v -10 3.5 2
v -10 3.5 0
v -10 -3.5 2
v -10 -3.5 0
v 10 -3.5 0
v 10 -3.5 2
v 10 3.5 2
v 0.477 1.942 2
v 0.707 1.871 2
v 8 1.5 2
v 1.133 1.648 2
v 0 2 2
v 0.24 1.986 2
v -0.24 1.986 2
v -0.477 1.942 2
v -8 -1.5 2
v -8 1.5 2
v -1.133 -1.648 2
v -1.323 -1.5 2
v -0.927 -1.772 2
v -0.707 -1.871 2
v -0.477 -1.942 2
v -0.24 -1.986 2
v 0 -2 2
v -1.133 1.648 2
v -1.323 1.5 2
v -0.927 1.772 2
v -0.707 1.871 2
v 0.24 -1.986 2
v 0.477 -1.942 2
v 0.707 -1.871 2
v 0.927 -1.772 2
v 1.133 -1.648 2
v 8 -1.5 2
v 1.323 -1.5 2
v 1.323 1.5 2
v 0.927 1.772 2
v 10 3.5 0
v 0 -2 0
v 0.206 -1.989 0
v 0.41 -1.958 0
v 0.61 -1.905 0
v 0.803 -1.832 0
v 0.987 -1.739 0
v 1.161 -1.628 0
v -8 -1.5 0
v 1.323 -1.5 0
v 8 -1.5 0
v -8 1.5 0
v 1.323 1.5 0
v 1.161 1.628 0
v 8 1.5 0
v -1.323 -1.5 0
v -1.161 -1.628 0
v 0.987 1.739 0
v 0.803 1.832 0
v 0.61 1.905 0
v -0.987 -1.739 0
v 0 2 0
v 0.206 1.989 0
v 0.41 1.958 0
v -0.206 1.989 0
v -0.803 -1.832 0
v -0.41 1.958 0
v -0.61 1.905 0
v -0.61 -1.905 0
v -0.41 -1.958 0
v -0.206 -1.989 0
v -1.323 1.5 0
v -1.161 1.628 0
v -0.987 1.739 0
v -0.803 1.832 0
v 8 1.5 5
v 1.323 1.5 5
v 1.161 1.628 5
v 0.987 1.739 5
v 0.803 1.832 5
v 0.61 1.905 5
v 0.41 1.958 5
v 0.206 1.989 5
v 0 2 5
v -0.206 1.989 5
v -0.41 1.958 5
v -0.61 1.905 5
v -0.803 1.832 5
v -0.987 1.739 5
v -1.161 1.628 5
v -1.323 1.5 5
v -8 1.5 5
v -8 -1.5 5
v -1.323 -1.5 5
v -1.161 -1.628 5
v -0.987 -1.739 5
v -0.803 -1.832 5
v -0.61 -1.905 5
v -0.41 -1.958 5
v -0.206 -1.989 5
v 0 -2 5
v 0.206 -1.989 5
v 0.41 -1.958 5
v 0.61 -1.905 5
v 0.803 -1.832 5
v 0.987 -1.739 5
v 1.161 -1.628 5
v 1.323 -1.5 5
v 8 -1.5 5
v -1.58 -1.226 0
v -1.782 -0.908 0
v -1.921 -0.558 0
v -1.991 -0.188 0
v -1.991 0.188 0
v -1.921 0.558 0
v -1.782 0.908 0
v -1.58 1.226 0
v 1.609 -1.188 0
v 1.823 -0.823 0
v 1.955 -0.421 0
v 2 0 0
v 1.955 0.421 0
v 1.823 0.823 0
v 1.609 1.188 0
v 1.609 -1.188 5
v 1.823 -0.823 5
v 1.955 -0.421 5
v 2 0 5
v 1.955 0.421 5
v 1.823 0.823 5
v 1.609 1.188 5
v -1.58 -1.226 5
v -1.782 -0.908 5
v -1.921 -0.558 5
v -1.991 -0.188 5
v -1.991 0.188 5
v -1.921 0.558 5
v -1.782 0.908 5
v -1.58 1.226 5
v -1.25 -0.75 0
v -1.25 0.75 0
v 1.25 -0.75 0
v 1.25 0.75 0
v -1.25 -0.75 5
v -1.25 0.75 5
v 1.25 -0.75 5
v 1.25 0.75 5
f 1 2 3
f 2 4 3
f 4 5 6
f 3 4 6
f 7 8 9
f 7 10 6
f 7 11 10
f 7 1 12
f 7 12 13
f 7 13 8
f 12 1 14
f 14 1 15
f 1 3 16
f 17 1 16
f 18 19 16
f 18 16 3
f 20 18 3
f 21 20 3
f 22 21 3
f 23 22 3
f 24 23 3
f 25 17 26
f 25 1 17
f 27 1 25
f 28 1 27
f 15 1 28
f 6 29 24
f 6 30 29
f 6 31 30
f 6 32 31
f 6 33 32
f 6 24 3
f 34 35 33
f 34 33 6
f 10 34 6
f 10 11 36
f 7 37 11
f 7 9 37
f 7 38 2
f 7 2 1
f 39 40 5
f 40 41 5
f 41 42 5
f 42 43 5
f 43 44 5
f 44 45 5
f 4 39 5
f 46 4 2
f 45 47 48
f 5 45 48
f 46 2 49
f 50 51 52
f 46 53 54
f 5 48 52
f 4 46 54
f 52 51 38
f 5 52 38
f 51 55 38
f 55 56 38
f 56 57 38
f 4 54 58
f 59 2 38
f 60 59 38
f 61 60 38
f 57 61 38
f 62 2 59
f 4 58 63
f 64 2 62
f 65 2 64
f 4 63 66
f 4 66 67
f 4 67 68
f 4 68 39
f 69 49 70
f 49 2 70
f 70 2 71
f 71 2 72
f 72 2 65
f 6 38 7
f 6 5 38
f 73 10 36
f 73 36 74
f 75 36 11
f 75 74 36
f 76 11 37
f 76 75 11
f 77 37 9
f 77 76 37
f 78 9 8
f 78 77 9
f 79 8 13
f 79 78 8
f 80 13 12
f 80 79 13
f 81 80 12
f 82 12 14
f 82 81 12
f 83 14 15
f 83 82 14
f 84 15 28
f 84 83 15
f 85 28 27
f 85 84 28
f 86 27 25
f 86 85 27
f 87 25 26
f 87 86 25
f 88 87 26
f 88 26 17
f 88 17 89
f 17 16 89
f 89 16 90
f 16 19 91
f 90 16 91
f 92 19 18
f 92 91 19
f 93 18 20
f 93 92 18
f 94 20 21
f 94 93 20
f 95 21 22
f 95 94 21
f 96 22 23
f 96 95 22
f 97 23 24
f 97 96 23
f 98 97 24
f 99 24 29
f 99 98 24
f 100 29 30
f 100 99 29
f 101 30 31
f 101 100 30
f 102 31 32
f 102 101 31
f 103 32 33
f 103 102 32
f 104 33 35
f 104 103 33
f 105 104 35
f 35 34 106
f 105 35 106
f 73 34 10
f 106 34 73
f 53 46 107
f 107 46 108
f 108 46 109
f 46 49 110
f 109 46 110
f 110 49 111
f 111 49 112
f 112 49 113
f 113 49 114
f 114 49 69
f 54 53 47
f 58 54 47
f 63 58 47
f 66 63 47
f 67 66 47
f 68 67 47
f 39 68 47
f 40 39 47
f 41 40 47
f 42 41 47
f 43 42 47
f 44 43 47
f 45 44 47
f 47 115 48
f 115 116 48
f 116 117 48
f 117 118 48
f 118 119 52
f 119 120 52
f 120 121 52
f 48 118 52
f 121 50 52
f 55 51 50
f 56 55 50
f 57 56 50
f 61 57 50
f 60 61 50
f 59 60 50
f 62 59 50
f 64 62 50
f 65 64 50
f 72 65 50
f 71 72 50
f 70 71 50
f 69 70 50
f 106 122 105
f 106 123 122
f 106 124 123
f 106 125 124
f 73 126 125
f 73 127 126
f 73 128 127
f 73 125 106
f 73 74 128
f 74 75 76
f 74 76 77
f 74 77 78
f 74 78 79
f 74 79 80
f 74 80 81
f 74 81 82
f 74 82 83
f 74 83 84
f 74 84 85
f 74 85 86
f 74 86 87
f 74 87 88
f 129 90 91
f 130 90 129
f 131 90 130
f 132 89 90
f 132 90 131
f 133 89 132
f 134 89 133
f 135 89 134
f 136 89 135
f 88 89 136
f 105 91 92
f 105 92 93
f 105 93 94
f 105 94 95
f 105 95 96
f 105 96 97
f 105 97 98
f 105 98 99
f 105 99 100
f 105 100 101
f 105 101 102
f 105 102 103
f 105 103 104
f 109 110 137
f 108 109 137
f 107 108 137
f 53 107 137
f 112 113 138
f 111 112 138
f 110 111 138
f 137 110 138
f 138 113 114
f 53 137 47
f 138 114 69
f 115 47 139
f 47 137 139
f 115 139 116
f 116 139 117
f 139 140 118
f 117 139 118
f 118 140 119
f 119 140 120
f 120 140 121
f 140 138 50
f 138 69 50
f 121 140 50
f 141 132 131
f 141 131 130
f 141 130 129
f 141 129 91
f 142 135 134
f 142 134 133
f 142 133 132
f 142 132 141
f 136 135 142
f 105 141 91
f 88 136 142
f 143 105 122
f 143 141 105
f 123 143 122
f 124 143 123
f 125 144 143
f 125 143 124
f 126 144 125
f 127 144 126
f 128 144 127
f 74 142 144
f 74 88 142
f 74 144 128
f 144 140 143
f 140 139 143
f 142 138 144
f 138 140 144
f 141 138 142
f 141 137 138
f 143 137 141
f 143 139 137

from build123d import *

# Parameters (mm, degrees)
BOX001_W       = 2.5
BOX001_H       = 1.5
BOX001_DEPTH   = 10
BOX_W          = 16
BOX_H          = 3
BOX_DEPTH      = 5
CYLINDER_R     = 2
CYLINDER_DEPTH = 5
BOX002_W       = 20
BOX002_H       = 7
BOX002_DEPTH   = 2


with BuildPart() as cube001:
    # Box001 → Box001 (new body)
    with BuildSketch(Plane(origin=(-1.25, -0.75, 0), x_dir=(1, 0, 0), z_dir=(0, 0, 1))):
        with Locations((1.25, 0.75)):
            Rectangle(BOX001_W, BOX001_H)
    extrude(amount=BOX001_DEPTH)


with BuildPart() as cube:
    # Box → Box (new body)
    with BuildSketch(Plane(origin=(-8, -1.5, 0), x_dir=(1, 0, 0), z_dir=(0, 0, 1))):
        with Locations((8, 1.5)):
            Rectangle(BOX_W, BOX_H)
    extrude(amount=BOX_DEPTH)


with BuildPart() as fusion:
    # Cylinder → Cylinder (new body)
    with BuildSketch(Plane.XY):
        Circle(CYLINDER_R)
    extrude(amount=CYLINDER_DEPTH)

    # Fusion: union Cube
    add(cube.part)


with BuildPart() as cut:
    # Box002 → Box002 (new body)
    with BuildSketch(Plane(origin=(-10, -3.5, 0), x_dir=(1, 0, 0), z_dir=(0, 0, 1))):
        with Locations((10, 3.5)):
            Rectangle(BOX002_W, BOX002_H)
    extrude(amount=BOX002_DEPTH)

    # Fusion001: union Fusion
    add(fusion.part)

    # Cut: cut Cube001
    add(cube001.part, mode=Mode.SUBTRACT)


solid = cut.part
